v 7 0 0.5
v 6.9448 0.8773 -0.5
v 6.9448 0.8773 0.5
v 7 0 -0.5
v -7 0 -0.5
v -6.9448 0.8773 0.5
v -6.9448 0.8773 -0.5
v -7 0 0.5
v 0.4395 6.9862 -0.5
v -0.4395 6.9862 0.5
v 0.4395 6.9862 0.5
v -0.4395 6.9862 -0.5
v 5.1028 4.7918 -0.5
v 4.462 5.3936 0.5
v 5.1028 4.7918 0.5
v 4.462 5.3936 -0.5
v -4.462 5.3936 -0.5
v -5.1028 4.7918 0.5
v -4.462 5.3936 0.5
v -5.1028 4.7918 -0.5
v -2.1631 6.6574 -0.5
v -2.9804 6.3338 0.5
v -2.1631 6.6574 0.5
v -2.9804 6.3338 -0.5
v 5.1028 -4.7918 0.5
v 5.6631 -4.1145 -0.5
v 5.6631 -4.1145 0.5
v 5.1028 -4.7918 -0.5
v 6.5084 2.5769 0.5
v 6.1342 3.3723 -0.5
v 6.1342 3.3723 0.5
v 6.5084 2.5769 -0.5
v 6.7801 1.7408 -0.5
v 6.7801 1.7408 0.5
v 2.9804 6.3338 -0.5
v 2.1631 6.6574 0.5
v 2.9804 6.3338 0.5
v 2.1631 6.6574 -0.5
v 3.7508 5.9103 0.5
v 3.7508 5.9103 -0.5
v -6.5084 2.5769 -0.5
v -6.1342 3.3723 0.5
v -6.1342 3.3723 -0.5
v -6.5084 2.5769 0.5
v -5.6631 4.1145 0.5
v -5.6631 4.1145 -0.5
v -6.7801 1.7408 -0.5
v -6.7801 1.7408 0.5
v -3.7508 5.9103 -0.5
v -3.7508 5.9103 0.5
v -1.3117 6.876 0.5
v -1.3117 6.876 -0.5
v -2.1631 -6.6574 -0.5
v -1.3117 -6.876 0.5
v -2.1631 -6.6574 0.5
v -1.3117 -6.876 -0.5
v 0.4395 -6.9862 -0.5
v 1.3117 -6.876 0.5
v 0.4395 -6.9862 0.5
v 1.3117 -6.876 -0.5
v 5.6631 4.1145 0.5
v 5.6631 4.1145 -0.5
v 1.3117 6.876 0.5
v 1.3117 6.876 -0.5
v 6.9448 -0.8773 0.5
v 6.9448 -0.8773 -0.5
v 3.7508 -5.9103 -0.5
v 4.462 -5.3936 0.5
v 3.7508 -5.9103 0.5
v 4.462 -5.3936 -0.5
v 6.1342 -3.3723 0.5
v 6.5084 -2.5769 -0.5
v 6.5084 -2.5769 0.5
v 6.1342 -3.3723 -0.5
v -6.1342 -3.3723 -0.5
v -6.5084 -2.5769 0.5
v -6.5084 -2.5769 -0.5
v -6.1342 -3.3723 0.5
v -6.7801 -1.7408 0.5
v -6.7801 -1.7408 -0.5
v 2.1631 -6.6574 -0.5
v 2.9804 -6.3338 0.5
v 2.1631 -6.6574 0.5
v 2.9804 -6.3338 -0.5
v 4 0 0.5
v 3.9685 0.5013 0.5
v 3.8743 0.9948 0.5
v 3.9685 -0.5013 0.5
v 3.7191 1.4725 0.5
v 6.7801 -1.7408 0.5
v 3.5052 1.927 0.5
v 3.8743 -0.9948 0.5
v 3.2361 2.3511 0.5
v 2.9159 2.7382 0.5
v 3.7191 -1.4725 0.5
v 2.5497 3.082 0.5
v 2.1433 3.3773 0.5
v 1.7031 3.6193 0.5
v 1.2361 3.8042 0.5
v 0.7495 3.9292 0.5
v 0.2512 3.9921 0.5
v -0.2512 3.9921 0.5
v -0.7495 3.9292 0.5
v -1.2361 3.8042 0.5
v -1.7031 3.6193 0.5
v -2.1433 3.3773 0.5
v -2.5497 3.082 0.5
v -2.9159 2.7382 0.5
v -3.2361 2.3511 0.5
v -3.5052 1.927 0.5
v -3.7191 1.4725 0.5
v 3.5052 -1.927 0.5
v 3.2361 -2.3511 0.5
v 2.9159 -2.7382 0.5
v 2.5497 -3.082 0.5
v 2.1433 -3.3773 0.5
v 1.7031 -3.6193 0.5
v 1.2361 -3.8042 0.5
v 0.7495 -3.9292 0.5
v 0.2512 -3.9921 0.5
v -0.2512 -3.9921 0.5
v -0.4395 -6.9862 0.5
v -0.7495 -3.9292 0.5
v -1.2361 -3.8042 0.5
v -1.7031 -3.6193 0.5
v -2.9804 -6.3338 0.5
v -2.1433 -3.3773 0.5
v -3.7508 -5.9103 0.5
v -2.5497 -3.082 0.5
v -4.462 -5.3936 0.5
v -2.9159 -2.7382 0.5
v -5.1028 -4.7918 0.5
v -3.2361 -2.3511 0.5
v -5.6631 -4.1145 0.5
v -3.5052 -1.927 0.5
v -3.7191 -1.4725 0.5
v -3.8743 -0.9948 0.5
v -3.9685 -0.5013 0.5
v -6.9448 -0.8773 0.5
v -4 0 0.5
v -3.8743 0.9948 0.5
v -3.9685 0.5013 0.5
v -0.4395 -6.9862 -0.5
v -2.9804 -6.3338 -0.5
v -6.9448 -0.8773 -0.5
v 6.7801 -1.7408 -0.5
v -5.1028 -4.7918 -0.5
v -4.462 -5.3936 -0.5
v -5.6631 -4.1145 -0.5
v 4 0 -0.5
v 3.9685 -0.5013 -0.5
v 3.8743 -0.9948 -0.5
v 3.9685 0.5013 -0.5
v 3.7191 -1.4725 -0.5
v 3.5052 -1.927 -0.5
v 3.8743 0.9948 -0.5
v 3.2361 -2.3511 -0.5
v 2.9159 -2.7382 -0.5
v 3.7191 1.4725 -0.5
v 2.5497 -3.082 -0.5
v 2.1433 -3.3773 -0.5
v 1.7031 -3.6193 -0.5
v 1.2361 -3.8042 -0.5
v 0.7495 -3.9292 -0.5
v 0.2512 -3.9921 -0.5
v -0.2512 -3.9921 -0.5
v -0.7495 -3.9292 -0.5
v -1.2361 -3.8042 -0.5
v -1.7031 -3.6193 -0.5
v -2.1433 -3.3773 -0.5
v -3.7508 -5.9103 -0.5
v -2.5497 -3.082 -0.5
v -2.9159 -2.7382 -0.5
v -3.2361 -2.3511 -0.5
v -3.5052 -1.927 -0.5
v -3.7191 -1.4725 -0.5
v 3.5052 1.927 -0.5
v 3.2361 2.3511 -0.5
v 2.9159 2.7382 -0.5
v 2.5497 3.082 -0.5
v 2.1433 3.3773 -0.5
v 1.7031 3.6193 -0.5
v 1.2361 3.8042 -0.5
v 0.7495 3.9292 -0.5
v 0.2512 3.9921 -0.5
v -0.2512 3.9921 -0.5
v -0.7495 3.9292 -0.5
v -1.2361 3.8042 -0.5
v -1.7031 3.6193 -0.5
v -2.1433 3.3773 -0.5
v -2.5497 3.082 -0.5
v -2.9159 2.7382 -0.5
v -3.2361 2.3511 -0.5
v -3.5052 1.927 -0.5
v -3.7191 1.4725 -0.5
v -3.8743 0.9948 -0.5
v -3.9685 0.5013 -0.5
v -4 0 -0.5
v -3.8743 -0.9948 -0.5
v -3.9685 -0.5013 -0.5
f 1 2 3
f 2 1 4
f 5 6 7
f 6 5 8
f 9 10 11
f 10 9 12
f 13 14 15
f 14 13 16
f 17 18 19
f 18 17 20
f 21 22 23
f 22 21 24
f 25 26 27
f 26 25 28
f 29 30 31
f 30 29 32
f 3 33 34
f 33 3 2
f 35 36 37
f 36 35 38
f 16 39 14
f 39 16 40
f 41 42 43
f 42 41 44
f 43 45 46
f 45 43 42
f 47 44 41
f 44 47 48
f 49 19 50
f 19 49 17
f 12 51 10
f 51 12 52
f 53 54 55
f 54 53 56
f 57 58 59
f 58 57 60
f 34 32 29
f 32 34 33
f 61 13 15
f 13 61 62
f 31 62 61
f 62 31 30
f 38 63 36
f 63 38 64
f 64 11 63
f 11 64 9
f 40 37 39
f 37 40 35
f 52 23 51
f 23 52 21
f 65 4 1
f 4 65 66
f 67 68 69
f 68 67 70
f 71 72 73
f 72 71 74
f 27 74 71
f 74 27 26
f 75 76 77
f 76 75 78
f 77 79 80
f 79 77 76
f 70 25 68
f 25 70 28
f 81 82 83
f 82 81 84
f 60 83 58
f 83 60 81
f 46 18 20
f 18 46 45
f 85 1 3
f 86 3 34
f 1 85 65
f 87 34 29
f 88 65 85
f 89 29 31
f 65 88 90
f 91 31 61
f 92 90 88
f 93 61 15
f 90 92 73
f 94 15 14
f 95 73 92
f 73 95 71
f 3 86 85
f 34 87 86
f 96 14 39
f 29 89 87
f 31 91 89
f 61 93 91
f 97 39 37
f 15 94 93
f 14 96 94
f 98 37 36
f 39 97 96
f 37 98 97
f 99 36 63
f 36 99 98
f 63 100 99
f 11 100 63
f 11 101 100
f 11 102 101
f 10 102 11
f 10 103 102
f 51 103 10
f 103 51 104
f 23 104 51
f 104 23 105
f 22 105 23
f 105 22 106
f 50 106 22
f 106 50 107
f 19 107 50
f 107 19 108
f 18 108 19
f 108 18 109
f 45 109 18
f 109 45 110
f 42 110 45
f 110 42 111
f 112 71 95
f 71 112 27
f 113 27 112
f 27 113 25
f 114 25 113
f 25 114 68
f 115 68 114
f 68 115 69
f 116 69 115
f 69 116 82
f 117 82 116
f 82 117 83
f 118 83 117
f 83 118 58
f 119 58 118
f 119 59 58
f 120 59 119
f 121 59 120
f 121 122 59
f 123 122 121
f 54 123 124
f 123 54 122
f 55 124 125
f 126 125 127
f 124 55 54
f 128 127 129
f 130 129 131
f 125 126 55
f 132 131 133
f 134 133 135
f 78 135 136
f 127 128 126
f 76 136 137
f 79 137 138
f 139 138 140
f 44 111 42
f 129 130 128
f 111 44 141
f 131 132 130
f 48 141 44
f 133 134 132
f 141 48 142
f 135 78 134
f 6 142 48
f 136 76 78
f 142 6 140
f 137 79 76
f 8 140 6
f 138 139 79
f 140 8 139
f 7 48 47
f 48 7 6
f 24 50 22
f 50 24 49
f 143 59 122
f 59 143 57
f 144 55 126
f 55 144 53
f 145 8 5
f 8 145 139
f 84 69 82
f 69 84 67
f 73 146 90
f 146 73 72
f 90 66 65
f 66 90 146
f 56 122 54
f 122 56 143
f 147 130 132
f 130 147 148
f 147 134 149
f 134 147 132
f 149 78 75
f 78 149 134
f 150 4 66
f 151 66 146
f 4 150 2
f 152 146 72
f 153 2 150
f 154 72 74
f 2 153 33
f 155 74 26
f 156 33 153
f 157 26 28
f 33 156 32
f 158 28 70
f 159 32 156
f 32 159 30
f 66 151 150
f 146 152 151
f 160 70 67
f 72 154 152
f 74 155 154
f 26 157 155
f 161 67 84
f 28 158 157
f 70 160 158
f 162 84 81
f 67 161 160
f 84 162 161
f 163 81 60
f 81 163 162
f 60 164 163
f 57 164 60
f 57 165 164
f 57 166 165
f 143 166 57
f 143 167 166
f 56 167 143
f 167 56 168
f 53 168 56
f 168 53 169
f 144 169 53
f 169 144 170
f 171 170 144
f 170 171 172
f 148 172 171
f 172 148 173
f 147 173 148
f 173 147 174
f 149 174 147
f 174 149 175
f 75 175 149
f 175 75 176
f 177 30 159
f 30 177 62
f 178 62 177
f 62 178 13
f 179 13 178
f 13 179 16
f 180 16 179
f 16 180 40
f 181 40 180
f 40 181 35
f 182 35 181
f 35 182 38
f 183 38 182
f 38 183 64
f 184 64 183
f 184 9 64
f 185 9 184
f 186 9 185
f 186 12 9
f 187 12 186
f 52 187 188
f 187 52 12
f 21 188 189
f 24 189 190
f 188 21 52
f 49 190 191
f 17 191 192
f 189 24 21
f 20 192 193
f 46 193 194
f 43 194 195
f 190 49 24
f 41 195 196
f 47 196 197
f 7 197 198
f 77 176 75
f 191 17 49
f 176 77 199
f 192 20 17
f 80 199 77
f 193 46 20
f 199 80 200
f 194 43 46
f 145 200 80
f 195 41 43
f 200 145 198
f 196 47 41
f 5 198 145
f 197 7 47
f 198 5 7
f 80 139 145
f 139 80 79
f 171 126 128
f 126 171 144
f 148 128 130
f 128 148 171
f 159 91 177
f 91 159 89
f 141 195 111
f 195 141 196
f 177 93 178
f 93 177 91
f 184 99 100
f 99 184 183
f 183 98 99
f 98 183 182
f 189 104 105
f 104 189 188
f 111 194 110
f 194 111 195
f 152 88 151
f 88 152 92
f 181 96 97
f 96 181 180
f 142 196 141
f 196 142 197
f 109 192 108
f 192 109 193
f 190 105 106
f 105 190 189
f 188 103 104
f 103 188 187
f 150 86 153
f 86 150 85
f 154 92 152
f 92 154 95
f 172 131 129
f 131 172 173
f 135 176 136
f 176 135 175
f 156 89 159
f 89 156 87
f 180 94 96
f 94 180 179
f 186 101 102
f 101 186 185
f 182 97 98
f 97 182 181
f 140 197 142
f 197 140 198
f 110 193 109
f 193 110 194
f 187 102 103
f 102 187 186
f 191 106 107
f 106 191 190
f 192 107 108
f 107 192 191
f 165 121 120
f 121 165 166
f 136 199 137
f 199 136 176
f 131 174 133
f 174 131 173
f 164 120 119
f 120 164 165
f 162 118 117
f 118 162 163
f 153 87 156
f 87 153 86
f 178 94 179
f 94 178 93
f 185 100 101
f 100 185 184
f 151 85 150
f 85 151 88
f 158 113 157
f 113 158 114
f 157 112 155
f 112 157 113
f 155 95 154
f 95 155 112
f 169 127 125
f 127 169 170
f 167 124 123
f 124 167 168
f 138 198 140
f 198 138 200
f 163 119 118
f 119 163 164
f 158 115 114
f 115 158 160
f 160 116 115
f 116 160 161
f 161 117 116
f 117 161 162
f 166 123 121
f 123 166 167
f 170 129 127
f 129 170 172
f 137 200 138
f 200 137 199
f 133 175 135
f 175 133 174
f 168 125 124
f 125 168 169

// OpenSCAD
$fn = 50;


difference() {
	union() {
		translate(v = [0, 0, -0.5000000000]) {
			cylinder(h = 1, r = 7.0000000000);
		}
	}
	union() {
		translate(v = [0, 0, -100.0000000000]) {
			cylinder(h = 200, r = 4.0000000000);
		}
	}
}
